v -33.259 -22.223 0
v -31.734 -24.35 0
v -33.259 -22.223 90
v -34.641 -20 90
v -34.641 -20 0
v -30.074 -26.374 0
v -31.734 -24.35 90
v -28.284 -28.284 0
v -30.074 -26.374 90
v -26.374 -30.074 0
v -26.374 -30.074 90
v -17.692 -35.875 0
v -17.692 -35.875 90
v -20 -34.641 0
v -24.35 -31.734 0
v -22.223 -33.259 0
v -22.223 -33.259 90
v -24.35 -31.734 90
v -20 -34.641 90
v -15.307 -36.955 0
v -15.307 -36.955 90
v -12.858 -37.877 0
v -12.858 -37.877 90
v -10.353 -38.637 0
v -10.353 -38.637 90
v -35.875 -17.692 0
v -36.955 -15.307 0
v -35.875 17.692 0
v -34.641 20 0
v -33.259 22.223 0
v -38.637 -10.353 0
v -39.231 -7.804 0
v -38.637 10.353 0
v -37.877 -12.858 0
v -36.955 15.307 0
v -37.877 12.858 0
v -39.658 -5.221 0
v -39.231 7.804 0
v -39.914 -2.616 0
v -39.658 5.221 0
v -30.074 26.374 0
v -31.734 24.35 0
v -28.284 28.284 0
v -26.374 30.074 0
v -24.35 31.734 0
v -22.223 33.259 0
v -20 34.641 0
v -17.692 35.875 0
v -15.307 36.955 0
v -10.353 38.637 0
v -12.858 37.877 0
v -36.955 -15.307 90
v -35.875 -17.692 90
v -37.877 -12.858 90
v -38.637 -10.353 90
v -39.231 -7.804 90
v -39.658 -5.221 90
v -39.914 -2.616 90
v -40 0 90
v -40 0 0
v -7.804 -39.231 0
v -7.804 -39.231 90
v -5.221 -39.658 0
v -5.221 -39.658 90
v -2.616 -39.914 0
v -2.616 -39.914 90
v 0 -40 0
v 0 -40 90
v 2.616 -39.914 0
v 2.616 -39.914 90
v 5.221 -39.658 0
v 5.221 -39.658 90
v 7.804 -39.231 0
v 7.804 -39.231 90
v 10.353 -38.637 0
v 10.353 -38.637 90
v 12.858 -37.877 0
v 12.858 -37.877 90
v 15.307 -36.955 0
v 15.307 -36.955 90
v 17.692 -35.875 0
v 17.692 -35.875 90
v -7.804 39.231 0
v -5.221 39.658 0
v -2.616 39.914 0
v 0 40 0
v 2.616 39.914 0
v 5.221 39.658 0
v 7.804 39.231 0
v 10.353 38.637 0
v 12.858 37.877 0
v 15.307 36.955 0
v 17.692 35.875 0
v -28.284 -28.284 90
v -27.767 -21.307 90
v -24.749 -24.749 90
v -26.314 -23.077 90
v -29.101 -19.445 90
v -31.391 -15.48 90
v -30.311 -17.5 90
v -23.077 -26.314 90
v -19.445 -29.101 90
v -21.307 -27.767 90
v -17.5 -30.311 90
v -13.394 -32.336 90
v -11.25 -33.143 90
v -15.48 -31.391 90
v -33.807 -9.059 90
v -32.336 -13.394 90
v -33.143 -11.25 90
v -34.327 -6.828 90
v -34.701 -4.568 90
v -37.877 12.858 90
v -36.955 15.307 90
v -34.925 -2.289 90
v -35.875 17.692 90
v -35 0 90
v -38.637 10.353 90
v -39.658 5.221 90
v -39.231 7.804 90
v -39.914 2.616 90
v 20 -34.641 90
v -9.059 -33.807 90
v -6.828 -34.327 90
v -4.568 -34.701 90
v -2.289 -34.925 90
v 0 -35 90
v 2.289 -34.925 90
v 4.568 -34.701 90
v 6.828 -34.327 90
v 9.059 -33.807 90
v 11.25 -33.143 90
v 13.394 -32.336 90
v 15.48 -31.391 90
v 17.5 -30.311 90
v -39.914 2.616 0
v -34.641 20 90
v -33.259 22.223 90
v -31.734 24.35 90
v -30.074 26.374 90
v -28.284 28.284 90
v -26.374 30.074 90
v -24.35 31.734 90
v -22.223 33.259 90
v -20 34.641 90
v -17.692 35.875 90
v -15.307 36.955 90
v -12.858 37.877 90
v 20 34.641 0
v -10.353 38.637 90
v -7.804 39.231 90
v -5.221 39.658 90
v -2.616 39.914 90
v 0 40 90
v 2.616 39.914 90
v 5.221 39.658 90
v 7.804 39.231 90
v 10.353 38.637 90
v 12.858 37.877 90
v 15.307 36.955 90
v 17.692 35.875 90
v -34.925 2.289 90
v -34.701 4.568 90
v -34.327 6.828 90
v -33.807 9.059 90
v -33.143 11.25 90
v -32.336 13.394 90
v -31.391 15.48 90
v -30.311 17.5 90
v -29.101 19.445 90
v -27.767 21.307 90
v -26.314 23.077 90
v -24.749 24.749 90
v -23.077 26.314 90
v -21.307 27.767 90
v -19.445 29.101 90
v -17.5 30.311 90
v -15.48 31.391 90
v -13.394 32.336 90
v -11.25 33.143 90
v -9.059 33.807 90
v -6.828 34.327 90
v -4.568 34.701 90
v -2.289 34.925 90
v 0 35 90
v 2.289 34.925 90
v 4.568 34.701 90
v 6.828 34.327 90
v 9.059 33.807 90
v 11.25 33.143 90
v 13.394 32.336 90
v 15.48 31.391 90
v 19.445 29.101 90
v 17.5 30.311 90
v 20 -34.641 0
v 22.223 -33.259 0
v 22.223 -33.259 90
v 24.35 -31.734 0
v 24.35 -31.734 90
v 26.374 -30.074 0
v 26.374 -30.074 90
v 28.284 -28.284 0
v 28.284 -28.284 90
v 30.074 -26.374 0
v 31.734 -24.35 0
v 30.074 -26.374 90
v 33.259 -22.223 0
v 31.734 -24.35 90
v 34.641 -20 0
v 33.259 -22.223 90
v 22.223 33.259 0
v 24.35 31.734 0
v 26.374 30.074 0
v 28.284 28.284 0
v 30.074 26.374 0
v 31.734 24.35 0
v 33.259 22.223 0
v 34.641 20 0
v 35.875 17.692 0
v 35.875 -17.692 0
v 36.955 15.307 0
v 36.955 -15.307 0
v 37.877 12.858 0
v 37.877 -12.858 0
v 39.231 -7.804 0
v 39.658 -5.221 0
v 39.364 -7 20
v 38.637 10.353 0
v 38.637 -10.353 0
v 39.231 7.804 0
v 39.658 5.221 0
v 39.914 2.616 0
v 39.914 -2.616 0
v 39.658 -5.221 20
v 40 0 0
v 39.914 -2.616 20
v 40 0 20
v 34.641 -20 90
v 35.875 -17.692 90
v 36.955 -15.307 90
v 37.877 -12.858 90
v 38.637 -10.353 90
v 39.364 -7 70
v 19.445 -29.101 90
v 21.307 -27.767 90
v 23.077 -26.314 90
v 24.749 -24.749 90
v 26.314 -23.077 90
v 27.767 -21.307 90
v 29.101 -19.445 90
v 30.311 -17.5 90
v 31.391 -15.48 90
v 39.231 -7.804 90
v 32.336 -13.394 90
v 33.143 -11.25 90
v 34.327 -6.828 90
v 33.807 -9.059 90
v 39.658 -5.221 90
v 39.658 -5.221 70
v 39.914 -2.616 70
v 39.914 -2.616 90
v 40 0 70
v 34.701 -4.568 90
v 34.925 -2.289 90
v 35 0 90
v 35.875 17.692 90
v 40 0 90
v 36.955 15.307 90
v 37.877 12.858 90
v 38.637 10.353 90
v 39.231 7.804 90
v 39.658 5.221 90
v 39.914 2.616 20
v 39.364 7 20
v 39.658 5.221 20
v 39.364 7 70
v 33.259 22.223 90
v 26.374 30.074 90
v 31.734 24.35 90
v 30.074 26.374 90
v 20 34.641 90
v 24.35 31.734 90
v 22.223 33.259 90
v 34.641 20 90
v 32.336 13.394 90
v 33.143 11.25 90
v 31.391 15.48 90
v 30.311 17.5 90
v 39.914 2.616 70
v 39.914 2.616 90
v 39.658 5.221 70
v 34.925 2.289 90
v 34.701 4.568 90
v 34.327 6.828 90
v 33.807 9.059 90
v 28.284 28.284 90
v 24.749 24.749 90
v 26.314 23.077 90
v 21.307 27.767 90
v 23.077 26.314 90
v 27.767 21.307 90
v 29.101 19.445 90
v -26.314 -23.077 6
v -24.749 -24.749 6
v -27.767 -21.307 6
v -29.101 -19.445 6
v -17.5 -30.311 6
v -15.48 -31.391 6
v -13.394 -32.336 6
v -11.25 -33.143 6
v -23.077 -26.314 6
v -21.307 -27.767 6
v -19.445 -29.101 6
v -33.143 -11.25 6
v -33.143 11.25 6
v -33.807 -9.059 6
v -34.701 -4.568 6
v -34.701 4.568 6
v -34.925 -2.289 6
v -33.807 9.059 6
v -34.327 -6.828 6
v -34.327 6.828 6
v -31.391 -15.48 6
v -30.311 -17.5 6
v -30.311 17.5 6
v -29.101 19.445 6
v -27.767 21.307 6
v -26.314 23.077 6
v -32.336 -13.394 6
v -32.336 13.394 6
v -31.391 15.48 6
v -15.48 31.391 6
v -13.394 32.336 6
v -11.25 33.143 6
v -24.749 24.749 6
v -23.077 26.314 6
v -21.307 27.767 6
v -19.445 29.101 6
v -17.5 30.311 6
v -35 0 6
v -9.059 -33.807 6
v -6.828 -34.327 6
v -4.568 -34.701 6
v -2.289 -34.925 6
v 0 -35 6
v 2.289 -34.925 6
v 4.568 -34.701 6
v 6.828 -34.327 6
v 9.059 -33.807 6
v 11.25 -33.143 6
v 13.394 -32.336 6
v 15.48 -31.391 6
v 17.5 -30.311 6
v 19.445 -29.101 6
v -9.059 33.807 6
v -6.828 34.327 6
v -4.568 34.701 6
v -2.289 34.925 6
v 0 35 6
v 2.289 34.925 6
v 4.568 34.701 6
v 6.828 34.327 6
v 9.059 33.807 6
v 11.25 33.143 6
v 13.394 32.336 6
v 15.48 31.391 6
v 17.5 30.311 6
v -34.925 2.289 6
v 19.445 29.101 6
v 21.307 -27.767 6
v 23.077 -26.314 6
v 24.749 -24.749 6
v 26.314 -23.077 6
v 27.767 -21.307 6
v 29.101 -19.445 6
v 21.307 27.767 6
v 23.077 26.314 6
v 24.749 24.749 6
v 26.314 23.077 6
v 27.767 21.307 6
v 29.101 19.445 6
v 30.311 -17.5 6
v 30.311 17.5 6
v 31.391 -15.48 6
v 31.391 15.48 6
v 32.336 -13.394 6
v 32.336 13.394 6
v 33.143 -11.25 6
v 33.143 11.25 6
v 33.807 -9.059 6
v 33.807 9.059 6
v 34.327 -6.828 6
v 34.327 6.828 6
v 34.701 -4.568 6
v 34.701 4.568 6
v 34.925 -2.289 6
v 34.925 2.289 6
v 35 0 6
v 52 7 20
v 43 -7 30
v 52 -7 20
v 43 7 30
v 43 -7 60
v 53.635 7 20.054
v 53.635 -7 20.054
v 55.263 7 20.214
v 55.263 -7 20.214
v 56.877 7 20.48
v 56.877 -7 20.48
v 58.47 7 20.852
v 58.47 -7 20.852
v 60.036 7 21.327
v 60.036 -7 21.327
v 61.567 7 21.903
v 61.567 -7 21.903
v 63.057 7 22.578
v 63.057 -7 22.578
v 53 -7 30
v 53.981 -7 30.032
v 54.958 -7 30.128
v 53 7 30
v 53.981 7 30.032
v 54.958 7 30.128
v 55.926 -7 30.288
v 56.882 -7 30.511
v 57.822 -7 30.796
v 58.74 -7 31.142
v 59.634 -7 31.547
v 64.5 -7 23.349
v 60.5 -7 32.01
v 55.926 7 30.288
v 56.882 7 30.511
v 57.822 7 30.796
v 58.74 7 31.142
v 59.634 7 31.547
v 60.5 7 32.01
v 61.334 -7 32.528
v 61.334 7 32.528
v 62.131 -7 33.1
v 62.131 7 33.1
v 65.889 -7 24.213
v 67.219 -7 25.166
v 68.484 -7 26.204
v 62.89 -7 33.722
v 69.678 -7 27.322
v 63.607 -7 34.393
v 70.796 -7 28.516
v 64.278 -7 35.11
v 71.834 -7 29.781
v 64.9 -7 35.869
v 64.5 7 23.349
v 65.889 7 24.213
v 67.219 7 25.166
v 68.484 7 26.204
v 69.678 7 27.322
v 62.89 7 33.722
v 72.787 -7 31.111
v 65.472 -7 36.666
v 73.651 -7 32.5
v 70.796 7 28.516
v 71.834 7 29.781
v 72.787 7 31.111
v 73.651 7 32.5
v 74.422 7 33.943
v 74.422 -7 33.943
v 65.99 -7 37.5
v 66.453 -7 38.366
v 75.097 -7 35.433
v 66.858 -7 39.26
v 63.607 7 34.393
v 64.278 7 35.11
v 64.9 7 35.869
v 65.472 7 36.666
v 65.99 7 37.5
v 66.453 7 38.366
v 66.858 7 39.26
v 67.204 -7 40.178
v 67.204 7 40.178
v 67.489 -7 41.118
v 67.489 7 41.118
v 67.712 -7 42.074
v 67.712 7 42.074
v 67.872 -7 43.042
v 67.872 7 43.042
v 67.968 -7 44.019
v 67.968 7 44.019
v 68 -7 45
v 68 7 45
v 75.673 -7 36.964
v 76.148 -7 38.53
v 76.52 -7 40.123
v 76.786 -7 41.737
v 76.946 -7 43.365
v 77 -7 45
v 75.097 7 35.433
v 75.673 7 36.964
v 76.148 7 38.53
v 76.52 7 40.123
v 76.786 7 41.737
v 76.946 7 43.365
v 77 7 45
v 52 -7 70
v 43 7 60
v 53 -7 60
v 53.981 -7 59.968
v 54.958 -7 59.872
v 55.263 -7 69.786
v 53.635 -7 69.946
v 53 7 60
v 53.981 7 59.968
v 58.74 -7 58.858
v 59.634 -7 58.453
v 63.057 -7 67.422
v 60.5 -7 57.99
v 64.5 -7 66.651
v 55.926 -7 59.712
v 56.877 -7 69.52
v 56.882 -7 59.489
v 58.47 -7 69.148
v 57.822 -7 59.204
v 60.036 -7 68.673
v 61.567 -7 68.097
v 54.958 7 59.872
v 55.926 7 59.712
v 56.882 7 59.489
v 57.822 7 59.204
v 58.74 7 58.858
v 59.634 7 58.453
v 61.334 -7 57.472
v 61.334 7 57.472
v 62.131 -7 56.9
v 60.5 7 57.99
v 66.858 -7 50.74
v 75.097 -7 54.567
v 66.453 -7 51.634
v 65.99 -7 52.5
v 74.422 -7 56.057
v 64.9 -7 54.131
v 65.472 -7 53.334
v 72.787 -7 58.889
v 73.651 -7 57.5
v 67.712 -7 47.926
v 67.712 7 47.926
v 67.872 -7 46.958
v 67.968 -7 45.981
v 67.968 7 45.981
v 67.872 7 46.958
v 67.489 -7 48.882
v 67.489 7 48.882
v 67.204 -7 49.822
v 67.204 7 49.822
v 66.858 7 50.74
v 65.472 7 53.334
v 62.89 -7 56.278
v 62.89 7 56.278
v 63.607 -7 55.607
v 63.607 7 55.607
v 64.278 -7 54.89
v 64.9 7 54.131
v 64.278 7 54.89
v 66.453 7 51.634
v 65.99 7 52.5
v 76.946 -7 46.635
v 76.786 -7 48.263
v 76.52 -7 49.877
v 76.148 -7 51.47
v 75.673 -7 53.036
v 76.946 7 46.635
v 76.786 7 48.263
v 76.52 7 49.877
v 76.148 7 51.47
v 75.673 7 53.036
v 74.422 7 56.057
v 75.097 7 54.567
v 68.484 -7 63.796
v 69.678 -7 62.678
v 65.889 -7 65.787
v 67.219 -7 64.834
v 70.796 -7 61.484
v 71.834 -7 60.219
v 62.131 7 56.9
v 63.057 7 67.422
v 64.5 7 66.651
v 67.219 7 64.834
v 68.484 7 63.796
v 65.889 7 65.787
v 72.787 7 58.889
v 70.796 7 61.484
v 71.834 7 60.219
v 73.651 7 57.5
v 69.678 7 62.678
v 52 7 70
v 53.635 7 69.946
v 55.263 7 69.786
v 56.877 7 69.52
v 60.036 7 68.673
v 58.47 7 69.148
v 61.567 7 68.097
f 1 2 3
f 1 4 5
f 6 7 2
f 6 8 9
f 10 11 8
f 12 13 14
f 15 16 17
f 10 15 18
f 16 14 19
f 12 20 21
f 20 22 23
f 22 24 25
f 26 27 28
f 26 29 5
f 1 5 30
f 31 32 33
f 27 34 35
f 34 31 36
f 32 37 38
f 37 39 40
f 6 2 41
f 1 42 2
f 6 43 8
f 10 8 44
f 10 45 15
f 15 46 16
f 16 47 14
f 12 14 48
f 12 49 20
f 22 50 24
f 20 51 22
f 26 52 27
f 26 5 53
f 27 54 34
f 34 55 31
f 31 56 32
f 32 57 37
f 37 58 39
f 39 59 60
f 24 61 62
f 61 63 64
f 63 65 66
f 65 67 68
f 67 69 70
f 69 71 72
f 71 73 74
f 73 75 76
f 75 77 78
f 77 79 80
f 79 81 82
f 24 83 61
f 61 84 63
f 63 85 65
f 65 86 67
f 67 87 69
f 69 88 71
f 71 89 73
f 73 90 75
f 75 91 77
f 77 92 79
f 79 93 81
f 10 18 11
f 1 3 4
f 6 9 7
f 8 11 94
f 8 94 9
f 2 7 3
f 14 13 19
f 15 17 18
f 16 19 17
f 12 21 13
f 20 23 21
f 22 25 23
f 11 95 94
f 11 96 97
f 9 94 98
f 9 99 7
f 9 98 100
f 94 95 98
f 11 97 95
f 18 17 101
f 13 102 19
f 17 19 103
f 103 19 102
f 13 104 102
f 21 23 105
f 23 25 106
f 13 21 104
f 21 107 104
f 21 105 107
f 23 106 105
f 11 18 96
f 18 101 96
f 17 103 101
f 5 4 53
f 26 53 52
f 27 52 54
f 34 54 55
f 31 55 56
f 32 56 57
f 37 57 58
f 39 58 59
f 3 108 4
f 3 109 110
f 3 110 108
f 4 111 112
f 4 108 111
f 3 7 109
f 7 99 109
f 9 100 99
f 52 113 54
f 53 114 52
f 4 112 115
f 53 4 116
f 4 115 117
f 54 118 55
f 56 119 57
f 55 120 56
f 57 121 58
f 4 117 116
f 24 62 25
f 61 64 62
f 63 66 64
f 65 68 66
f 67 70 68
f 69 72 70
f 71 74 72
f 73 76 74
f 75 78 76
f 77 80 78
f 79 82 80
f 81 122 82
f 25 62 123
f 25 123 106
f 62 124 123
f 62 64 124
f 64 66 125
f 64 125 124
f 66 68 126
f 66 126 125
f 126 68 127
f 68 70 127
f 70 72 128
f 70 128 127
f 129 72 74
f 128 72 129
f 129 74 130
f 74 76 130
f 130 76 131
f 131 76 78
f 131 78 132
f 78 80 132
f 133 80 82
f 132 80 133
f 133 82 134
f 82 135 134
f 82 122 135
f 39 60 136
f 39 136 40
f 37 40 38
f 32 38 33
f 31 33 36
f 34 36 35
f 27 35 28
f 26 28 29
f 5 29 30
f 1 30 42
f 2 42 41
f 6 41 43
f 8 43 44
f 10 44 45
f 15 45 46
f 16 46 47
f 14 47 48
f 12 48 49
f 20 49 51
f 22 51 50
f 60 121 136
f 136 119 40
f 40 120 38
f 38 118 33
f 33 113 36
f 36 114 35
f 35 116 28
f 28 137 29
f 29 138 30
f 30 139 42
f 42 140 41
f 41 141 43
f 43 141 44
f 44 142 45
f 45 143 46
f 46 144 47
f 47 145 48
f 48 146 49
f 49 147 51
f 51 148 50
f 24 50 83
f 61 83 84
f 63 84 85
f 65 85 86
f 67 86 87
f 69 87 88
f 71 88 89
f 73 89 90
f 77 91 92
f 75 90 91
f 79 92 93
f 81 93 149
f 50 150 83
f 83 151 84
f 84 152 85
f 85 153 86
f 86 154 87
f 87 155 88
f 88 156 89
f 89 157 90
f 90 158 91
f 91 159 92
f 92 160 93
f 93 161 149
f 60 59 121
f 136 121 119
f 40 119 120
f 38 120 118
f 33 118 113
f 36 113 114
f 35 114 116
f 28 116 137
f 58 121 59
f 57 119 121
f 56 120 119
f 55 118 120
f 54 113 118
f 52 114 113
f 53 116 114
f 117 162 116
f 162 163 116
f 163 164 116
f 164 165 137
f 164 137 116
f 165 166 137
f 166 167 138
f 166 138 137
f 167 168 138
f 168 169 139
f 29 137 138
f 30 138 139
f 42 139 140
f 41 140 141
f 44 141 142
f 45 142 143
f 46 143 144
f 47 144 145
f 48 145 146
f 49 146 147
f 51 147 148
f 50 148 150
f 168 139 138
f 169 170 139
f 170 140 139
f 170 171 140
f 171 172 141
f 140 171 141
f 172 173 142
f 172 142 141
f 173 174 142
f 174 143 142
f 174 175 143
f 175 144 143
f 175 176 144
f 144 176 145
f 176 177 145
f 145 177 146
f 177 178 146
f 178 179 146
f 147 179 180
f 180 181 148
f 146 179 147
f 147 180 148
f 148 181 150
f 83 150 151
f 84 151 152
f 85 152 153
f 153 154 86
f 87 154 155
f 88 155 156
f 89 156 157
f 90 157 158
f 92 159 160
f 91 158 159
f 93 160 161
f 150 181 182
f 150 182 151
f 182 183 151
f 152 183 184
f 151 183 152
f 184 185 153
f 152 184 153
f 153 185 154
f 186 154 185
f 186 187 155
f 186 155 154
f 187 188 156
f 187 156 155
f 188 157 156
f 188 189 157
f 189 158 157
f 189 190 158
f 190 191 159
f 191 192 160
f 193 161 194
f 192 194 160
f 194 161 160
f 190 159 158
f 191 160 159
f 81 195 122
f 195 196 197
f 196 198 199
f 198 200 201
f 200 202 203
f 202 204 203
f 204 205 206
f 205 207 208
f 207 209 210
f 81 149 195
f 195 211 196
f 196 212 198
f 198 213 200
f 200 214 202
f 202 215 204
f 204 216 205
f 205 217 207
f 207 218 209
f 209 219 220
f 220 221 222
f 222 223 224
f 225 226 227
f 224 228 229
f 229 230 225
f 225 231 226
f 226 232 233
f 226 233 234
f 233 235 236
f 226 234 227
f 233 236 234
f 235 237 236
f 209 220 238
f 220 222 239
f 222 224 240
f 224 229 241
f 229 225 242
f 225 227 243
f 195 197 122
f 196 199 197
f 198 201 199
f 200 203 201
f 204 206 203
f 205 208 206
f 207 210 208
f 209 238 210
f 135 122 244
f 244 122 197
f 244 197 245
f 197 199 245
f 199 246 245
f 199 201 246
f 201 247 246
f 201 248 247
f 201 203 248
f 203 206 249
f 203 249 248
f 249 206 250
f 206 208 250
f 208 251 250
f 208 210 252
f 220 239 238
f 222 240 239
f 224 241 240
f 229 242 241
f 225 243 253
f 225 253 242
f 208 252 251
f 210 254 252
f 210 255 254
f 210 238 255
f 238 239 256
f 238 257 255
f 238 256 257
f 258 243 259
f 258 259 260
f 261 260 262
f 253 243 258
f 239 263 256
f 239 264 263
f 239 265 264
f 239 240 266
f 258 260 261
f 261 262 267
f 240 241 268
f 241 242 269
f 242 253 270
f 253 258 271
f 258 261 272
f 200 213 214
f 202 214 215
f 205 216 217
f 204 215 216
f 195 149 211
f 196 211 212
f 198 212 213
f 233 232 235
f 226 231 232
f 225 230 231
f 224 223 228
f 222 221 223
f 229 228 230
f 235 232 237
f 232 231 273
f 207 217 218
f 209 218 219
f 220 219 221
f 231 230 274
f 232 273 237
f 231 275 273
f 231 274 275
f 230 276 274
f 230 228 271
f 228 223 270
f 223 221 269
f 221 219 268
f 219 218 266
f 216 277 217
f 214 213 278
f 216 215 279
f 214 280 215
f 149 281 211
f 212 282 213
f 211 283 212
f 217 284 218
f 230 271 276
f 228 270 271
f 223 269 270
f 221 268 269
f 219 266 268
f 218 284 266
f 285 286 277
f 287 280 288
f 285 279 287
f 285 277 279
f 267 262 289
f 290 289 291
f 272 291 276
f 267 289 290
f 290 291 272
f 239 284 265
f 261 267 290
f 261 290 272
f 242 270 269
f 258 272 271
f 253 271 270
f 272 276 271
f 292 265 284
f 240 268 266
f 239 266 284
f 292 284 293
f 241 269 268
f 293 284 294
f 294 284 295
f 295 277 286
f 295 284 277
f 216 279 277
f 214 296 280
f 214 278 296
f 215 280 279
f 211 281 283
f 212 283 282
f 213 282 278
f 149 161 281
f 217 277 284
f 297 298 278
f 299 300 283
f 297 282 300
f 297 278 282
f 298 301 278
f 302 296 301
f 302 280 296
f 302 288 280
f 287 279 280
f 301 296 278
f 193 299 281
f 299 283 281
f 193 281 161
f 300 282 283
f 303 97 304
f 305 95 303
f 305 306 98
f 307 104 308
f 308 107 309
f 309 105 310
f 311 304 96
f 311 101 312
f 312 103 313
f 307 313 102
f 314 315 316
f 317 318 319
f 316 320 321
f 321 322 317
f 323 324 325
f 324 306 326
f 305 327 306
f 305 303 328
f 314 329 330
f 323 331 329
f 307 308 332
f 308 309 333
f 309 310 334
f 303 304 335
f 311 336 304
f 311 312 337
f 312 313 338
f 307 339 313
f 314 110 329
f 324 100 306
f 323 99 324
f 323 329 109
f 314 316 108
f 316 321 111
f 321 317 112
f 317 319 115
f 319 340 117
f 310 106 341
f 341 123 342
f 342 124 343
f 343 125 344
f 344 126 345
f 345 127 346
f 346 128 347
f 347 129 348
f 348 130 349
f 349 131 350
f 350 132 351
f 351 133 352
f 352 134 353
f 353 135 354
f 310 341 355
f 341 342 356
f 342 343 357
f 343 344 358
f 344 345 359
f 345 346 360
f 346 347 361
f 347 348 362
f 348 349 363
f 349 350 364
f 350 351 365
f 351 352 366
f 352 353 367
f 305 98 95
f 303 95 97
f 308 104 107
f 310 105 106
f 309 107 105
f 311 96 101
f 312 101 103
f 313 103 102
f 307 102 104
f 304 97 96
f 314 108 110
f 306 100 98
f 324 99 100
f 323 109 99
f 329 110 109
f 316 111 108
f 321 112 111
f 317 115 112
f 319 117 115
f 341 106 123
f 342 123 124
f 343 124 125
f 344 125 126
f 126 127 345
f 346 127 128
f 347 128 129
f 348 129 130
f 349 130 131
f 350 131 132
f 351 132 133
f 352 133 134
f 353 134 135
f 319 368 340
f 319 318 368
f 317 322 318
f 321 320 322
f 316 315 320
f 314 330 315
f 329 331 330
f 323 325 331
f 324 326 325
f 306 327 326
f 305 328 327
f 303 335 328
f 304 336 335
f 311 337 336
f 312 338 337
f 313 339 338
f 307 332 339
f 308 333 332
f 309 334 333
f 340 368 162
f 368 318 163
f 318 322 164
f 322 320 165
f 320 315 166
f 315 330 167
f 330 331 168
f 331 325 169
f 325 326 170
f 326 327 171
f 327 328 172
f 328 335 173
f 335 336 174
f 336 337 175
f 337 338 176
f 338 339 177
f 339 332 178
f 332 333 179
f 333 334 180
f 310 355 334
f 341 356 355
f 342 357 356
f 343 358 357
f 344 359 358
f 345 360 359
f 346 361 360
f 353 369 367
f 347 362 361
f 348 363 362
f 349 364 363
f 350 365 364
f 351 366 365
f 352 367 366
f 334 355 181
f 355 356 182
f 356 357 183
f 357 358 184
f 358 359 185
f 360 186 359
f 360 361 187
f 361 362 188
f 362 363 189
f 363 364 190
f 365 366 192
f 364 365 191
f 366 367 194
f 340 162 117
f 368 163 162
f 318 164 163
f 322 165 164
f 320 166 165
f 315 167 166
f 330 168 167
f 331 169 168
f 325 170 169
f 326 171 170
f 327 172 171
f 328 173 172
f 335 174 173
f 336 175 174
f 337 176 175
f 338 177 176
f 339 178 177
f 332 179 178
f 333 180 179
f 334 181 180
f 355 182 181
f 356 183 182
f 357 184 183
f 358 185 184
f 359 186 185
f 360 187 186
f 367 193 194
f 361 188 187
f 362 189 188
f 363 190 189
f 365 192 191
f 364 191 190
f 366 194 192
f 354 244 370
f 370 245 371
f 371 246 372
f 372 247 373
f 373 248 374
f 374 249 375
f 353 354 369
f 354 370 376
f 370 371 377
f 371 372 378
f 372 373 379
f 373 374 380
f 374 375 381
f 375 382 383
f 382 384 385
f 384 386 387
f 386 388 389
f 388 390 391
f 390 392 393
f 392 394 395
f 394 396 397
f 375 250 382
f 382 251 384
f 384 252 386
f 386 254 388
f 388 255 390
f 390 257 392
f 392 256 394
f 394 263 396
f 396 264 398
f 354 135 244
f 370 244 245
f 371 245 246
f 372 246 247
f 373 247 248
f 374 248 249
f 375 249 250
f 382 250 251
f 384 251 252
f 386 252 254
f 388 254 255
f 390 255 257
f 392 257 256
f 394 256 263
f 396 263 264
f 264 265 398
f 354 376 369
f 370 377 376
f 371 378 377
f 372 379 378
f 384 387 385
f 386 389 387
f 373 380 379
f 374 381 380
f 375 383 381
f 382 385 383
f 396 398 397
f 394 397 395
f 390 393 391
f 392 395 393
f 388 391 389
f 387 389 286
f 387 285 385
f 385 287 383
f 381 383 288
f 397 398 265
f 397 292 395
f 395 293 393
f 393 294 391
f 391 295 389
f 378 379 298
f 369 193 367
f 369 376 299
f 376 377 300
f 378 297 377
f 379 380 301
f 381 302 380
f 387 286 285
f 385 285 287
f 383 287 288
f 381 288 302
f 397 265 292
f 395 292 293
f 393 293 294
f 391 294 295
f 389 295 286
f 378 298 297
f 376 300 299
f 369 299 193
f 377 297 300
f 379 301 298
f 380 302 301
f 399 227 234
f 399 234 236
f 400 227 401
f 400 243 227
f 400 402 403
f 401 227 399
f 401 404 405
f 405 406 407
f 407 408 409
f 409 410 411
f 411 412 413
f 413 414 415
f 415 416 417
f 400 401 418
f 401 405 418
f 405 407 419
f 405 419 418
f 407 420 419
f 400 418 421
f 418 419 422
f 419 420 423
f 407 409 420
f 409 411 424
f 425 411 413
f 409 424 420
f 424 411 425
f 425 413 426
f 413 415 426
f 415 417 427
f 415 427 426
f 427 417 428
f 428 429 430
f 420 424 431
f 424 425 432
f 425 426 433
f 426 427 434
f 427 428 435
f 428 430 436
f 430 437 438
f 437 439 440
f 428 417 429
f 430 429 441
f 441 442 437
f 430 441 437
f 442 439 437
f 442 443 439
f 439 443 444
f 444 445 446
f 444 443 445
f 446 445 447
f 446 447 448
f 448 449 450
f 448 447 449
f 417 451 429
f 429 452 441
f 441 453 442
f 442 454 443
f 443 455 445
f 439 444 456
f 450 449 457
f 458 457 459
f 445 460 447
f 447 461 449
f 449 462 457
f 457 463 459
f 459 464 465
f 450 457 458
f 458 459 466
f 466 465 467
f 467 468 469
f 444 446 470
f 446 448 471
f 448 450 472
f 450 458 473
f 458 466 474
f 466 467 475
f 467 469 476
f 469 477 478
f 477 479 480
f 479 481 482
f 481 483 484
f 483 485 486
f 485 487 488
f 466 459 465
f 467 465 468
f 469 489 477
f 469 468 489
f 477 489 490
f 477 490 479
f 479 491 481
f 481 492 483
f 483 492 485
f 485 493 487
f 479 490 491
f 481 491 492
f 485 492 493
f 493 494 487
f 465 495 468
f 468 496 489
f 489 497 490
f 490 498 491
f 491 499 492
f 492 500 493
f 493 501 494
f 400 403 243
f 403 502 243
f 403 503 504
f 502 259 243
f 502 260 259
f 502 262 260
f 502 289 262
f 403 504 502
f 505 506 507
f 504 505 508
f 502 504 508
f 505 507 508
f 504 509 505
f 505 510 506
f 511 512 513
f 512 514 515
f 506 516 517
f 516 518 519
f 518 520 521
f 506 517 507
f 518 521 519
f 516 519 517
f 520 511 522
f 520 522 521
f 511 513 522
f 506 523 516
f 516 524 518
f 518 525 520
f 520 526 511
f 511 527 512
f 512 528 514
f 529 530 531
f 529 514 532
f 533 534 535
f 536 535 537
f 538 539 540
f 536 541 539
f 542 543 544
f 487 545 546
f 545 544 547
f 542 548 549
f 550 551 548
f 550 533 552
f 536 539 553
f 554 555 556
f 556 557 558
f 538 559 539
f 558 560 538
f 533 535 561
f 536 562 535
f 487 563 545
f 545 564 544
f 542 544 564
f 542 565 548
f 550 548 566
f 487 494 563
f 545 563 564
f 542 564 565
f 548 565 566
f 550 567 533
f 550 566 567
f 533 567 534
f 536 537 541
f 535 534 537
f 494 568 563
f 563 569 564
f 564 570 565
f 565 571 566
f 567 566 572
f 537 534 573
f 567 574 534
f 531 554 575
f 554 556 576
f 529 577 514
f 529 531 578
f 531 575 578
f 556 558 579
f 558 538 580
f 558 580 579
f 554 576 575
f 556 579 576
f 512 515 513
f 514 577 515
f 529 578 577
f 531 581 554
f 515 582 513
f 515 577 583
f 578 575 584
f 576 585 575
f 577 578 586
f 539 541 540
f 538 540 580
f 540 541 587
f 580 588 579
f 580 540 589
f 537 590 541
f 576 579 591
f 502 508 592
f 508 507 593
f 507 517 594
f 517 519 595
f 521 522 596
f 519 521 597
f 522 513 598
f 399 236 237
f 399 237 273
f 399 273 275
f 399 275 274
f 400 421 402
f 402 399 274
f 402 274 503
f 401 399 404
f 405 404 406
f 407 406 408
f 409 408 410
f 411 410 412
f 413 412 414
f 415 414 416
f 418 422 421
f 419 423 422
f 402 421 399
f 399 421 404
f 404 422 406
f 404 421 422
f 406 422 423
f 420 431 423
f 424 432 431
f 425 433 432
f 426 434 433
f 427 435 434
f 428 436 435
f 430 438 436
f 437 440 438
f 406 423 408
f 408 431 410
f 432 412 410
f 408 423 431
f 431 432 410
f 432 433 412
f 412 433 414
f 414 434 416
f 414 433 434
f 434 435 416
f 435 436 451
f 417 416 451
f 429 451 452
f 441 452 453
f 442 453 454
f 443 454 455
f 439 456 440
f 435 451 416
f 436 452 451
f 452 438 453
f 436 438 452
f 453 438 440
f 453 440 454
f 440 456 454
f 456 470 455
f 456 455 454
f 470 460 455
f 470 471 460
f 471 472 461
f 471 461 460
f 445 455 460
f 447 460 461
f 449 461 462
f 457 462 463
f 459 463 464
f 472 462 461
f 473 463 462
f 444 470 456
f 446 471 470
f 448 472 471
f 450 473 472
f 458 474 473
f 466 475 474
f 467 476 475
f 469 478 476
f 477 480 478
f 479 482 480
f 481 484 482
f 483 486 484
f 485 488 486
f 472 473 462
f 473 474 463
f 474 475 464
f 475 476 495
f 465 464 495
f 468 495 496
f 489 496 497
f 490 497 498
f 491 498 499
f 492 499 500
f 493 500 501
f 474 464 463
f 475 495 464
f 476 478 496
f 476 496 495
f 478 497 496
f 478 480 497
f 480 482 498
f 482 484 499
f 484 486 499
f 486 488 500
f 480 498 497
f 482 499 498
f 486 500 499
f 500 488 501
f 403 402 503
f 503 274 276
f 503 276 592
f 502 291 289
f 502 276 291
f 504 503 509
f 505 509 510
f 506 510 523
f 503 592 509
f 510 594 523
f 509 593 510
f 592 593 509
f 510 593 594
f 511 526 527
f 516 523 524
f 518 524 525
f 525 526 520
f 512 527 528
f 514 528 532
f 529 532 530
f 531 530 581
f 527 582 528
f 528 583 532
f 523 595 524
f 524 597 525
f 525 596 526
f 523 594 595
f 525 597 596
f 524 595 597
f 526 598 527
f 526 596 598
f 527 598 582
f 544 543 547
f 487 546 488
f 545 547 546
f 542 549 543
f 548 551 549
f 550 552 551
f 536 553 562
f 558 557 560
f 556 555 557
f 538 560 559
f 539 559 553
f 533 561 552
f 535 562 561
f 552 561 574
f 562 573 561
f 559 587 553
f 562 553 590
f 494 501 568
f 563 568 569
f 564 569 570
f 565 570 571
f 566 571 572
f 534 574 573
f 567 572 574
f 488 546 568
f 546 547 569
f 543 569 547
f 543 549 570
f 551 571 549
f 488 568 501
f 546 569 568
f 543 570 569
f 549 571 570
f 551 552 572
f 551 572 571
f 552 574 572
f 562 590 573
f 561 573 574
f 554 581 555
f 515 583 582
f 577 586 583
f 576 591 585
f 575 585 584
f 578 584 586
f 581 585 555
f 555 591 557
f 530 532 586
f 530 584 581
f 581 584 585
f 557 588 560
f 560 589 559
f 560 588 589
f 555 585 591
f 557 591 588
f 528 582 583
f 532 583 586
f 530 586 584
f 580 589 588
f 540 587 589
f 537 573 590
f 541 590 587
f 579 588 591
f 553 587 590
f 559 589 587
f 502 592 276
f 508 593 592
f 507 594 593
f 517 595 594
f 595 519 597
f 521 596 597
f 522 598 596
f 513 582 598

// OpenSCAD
$fn = 96;

// Dimensions in mm
outer_radius = 40;
inner_radius = 35;
mug_height = 90;
bottom_thickness = 6;
handle_thickness = 14;
arc_steps = 48;

// A D-shaped outline in the X–Z plane:
// straight edge on the left, semicircular edge on the right.
module d_outline(left_x, arc_center_x, center_z, radius) {
    polygon(points = concat(
        [[left_x, center_z - radius]],
        [for (i = [0 : arc_steps])
            [arc_center_x + radius * cos(-90 + 180 * i / arc_steps),
             center_z + radius * sin(-90 + 180 * i / arc_steps)]],
        [[left_x, center_z + radius]]
    ));
}

module handle() {
    rotate([90, 0, 0])
        linear_extrude(height = handle_thickness, center = true)
            difference() {
                // The straight edge overlaps the mug wall for a solid join.
                d_outline(38, 52, 45, 25);
                // Opening: 30 mm high and 25 mm wide.
                d_outline(43, 53, 45, 15);
            }
}

union() {
    difference() {
        cylinder(h = mug_height, r = outer_radius);
        translate([0, 0, bottom_thickness])
            cylinder(h = mug_height - bottom_thickness + 1,
                     r = inner_radius);
    }

    // Handle only on the +X side.
    handle();
}
